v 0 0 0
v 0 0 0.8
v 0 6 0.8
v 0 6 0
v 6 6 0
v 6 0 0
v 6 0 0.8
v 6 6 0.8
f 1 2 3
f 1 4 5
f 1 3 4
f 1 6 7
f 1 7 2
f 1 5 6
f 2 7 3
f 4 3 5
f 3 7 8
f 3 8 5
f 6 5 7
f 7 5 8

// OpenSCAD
/* Warning, this is a very basic generator with a lot of approximation 
input data : [WQFN, 5PX, 6x6x0.8mm, 32, , A, C04-00305A]
generated by com.zoubworld.electronics.cad.model3d.Basic
Date : Sun Feb 15 10:50:48 CET 2026
*/

//body
color("black")
translate([0,0,0])
cube([6.0,6.0,0.8], center=false);
